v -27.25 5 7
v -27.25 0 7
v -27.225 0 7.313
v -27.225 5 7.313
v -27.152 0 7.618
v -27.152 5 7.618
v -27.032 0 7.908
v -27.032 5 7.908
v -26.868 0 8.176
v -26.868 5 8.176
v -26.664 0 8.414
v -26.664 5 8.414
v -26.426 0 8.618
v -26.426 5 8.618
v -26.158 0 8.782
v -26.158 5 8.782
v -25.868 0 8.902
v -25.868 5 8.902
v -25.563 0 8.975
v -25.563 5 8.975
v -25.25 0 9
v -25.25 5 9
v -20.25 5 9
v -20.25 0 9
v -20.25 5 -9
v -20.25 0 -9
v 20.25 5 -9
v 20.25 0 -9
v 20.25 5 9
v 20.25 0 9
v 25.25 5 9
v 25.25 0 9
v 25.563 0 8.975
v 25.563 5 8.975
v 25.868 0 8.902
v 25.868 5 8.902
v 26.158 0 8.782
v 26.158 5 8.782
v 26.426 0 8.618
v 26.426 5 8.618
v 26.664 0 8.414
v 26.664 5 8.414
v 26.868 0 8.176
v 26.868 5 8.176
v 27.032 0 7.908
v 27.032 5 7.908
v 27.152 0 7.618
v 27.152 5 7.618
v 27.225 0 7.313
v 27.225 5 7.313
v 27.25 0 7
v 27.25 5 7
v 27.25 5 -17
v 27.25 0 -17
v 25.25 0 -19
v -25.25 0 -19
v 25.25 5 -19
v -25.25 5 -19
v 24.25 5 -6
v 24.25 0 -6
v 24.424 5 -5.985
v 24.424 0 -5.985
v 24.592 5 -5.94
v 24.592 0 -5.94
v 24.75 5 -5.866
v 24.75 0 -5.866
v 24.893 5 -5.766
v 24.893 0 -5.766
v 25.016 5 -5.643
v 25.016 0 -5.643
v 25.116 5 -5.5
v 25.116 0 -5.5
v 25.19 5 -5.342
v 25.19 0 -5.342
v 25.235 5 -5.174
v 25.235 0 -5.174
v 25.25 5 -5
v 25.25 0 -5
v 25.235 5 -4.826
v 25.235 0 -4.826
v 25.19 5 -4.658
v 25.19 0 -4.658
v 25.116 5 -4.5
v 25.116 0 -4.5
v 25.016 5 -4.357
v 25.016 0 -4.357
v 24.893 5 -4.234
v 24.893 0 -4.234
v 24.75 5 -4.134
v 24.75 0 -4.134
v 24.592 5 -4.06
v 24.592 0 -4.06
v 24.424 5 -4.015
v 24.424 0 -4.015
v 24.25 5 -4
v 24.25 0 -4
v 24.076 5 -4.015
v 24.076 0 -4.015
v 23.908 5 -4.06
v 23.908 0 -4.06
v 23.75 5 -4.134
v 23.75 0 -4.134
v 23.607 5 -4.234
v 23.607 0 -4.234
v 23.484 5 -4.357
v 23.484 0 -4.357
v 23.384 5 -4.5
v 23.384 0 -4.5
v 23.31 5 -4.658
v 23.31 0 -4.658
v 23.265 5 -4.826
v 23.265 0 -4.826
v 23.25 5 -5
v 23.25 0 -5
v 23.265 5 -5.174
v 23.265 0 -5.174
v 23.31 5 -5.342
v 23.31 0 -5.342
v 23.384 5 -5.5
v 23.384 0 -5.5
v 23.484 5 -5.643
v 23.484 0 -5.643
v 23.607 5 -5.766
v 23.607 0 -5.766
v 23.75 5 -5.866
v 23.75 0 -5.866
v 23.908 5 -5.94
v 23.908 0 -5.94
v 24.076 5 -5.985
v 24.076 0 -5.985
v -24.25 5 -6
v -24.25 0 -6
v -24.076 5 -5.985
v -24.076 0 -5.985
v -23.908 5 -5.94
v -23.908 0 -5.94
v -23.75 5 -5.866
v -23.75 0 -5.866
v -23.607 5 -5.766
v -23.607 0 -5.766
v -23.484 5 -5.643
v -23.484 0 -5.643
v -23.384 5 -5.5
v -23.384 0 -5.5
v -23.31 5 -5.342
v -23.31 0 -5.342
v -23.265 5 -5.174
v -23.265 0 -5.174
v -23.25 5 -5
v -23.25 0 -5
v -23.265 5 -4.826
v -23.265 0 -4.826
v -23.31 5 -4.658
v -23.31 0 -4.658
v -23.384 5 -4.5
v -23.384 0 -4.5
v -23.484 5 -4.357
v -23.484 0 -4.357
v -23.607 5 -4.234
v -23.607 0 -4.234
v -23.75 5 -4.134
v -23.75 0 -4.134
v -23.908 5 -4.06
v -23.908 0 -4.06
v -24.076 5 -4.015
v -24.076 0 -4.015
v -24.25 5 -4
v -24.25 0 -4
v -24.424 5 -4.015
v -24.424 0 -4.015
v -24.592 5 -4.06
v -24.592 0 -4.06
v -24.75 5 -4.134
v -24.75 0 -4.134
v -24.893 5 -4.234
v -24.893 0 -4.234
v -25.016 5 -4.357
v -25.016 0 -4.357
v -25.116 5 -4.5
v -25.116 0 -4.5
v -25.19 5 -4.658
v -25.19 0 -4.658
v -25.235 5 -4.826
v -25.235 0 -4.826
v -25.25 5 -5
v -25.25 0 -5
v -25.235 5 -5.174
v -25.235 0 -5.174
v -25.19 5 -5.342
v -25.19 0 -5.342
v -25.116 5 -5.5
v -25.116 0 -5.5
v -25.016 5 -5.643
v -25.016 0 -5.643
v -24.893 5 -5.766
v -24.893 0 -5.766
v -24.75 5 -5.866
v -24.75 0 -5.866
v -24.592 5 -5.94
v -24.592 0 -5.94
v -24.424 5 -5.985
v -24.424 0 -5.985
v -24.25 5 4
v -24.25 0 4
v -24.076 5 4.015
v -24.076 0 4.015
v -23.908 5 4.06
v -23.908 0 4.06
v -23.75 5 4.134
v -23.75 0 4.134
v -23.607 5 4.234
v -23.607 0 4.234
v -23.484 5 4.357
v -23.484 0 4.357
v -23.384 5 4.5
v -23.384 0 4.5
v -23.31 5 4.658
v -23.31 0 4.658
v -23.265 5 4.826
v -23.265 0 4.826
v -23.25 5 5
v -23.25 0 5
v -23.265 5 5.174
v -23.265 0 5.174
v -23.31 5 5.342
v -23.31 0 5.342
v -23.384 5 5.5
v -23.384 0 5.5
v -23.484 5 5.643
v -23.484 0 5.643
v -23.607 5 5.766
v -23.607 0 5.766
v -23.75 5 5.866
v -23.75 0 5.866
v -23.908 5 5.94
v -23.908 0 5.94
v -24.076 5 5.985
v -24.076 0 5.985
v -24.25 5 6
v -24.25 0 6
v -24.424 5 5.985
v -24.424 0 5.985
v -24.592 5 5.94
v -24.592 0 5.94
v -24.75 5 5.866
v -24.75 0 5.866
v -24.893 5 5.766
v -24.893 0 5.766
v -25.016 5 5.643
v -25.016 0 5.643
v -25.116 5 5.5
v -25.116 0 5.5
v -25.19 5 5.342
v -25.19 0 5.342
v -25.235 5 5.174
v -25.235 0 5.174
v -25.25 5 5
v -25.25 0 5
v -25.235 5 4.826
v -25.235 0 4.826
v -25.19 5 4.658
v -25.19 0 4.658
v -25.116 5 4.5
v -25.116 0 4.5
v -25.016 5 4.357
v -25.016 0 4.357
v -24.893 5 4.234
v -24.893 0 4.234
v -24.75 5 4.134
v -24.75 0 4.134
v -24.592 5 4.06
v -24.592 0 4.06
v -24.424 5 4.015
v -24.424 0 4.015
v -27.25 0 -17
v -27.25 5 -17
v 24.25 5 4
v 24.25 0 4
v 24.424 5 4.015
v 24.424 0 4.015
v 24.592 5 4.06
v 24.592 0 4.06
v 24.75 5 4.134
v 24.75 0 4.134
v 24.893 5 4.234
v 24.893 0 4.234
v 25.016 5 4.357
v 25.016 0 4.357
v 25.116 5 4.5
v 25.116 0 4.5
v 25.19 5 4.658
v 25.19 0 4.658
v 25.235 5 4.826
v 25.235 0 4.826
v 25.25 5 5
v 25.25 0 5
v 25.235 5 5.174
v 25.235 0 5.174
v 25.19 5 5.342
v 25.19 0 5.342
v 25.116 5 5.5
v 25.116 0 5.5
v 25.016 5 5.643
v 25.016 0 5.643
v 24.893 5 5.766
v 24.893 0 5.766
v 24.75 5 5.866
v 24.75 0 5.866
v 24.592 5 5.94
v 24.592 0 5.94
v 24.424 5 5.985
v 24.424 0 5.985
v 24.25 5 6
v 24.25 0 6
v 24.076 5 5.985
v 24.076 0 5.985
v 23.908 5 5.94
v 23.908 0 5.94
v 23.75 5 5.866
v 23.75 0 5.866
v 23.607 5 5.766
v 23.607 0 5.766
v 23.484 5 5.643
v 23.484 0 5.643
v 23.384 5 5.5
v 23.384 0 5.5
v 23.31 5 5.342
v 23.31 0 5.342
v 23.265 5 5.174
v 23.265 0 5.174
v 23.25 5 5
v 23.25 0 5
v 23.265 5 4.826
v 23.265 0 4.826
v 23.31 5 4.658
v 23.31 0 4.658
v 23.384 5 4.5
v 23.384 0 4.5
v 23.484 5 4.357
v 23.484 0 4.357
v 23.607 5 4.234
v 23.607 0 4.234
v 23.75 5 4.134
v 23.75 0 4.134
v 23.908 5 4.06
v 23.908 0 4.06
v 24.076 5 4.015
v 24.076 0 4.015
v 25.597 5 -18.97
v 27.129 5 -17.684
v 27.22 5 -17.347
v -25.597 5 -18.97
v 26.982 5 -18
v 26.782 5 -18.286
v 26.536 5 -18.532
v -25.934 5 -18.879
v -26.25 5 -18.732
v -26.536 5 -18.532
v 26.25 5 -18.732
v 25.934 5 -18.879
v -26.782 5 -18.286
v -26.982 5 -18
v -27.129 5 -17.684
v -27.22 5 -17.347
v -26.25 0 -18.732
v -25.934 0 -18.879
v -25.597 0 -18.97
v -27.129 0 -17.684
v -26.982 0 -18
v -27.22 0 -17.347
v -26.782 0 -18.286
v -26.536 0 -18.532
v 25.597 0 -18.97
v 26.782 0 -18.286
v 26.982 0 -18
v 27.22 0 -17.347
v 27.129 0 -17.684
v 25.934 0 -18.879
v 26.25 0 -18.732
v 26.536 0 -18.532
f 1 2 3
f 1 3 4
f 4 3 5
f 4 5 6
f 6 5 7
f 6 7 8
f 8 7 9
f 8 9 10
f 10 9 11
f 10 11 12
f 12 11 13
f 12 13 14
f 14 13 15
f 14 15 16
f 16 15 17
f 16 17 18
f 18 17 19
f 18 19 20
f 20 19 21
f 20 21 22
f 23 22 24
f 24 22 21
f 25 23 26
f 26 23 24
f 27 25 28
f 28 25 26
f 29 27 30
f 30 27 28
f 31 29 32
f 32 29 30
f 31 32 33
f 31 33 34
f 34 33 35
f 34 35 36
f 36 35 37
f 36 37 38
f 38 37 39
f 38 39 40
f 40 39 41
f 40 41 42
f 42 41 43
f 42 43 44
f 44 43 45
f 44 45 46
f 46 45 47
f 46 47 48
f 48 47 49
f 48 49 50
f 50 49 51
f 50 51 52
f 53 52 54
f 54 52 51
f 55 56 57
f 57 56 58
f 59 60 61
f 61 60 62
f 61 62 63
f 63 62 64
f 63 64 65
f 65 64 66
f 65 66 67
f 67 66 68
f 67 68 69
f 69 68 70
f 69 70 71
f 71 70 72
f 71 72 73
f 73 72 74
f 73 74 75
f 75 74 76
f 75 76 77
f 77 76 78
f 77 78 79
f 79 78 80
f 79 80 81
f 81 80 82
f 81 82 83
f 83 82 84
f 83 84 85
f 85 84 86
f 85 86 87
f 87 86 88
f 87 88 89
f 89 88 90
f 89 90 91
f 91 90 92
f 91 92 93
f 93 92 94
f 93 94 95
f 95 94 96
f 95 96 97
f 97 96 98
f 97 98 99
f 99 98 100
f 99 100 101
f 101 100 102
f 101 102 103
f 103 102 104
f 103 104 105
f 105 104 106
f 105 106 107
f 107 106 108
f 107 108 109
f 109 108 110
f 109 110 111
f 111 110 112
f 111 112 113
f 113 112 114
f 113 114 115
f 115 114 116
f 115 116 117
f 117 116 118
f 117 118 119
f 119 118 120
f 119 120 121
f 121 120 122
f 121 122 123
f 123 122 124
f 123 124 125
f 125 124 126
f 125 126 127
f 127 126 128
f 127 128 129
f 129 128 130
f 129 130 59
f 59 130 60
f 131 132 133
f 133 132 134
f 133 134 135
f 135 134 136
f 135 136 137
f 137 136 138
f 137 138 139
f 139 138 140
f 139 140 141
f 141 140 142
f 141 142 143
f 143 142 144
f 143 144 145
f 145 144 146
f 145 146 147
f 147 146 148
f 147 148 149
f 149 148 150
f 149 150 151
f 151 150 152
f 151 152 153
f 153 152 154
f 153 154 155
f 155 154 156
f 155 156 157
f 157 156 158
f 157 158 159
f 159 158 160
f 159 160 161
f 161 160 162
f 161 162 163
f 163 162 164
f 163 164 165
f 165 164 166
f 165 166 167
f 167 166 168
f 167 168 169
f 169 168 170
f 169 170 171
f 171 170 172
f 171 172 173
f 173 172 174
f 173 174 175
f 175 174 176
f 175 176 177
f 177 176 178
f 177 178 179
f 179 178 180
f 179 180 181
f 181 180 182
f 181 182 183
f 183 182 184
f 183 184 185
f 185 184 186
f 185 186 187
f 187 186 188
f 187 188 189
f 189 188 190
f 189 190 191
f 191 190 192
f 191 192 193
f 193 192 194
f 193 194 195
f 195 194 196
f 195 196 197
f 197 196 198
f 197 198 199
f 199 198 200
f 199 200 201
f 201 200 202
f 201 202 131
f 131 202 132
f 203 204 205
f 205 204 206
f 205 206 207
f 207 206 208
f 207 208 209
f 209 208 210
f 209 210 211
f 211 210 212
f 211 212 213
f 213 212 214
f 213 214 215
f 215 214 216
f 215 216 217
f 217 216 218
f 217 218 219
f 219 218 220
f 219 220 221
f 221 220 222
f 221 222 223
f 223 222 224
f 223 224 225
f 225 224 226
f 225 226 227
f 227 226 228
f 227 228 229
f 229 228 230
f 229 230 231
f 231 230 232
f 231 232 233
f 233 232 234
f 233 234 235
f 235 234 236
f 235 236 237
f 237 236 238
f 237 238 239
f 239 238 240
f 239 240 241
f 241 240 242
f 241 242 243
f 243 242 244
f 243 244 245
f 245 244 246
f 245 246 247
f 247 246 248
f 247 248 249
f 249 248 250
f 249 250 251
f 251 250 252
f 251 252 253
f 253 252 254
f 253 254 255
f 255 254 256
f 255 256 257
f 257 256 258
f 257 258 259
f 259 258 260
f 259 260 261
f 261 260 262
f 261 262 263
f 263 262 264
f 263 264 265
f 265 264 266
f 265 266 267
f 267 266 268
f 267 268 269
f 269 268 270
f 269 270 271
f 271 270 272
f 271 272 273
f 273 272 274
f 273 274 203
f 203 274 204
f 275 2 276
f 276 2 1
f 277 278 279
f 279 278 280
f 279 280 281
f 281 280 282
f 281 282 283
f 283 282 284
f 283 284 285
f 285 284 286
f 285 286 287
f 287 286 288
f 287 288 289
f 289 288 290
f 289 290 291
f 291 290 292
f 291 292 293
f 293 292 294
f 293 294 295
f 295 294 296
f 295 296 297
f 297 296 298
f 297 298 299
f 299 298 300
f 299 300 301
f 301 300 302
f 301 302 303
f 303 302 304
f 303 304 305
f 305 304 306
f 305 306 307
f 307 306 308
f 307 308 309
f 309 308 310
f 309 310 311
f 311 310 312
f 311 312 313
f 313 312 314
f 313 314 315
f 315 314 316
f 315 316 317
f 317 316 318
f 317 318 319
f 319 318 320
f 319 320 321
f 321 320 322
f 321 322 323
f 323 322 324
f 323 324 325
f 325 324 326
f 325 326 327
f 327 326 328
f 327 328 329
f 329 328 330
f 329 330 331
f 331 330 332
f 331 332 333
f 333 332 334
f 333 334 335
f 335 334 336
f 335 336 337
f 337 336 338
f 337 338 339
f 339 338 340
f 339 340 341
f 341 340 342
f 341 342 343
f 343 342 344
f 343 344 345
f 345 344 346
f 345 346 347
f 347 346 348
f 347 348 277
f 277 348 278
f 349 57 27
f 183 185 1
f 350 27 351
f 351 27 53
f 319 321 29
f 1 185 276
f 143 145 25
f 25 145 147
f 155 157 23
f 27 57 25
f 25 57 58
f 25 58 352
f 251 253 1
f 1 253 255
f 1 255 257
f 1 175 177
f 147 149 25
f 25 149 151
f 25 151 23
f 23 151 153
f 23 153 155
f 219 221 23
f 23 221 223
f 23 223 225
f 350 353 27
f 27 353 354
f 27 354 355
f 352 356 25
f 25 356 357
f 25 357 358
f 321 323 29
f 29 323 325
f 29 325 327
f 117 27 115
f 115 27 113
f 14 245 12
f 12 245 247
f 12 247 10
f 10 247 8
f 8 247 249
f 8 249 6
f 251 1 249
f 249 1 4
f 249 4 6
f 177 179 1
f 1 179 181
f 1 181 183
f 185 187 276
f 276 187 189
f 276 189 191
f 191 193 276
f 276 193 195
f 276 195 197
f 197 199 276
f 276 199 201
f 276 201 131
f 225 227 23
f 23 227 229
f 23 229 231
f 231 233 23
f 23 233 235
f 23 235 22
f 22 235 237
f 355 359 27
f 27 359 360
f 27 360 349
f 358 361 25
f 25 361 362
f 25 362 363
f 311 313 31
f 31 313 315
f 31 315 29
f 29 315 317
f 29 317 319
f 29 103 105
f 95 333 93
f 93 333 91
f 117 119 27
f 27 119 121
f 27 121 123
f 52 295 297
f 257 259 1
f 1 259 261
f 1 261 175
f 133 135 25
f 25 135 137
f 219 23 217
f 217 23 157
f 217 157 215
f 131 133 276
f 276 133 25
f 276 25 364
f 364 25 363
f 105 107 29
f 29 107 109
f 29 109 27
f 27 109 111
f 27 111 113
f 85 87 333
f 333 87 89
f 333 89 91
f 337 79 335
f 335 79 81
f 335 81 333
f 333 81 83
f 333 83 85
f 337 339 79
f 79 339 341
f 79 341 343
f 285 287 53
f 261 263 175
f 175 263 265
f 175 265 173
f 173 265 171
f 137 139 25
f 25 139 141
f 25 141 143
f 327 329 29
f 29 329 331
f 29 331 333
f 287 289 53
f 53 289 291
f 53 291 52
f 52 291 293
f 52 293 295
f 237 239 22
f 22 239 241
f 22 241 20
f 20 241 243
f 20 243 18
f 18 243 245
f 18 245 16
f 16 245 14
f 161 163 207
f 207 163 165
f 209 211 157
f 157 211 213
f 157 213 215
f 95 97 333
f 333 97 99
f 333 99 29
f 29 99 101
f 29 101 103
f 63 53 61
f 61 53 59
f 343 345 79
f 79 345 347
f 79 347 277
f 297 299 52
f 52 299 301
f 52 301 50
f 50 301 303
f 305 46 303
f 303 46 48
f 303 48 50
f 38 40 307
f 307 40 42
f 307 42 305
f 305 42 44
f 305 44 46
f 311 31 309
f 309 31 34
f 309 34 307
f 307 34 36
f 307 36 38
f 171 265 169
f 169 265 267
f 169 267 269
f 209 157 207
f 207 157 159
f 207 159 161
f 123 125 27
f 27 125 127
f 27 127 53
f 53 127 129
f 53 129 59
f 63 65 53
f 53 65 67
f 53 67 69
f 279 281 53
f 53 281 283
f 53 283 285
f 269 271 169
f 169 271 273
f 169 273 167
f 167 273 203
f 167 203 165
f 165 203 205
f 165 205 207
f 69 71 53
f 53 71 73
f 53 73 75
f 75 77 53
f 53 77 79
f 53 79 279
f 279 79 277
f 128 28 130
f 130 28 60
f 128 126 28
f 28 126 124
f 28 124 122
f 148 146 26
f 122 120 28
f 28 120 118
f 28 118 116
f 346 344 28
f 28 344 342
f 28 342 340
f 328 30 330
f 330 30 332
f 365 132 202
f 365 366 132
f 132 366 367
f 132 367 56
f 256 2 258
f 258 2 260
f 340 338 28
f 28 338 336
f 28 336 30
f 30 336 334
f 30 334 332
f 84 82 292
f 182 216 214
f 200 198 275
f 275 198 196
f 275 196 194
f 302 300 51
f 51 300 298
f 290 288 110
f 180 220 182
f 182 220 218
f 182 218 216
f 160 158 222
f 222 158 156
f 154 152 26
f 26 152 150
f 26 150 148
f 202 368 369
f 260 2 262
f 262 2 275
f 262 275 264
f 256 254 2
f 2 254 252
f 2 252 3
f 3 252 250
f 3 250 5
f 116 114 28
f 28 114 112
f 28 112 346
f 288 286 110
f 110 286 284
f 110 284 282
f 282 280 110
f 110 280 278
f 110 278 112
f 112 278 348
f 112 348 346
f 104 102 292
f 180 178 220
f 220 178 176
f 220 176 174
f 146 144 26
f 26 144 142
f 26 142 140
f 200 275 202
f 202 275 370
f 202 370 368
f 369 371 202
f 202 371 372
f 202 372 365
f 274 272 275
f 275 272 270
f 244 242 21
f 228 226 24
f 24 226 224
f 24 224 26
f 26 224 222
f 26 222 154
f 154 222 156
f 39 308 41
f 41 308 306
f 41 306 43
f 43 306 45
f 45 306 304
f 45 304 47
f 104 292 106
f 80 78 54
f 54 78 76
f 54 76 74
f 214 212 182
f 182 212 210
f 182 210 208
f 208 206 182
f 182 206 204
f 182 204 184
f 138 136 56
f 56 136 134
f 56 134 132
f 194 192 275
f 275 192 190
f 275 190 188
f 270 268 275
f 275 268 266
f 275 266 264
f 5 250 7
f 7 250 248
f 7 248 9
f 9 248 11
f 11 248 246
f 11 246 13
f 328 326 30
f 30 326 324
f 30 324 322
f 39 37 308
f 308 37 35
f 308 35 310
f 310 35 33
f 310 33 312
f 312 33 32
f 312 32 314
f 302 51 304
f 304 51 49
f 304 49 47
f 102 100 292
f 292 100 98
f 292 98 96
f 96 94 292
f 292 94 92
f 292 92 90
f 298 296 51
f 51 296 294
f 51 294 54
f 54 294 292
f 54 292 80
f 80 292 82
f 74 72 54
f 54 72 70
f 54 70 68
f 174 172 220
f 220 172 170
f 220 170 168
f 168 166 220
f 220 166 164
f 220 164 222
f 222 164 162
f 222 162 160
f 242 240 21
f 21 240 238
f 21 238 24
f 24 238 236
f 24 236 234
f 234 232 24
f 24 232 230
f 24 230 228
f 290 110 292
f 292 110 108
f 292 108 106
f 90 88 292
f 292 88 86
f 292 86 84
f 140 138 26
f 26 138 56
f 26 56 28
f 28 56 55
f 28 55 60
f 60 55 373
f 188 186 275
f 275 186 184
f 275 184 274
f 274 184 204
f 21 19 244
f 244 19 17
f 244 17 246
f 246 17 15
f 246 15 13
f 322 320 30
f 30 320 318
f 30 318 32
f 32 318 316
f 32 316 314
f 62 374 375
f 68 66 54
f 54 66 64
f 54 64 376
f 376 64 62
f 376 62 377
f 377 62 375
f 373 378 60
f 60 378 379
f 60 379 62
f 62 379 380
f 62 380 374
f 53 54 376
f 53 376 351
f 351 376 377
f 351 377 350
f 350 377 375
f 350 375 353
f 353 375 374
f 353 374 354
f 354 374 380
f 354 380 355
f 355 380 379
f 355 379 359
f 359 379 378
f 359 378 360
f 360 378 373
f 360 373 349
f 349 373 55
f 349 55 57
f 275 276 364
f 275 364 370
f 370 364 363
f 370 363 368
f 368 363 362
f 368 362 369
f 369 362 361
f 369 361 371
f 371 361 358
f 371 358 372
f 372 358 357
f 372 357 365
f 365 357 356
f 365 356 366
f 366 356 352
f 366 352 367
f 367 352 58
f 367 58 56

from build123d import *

# Parameters (mm, degrees)
SKETCH1_R           = 1
BOSS_EXTRUDE2_DEPTH = 5
FILLET1_R           = 2


with BuildPart() as part:
    # Sketch1 → Boss-Extrude2 (new body)
    with BuildSketch(Plane(origin=(0, 0, 0), x_dir=(1, 0, 0), z_dir=(0, 1, 0))):
        with BuildLine():
            ThreePointArc((-25.25, -9), (-26.664213562, -8.414213562), (-27.25, -7))
            Line((-27.25, -7), (-27.25, 9))
            Line((-27.25, 9), (-20.25, 9))
            Line((-20.25, 9), (-20.25, -9))
            Line((-20.25, -9), (-25.25, -9))
        make_face()
        with Locations((-24.25, -5)):
            Circle(SKETCH1_R, mode=Mode.SUBTRACT)
        with Locations((-24.25, 5)):
            Circle(SKETCH1_R, mode=Mode.SUBTRACT)
        Polygon((-27.25, 9), (-20.25, 9), (20.25, 9), (27.25, 9), (27.25, 19), (-27.25, 19), align=None)
        with BuildLine():
            ThreePointArc((27.25, -7), (26.664213562, -8.414213562), (25.25, -9))
            Line((25.25, -9), (20.25, -9))
            Line((20.25, -9), (20.25, 9))
            Line((20.25, 9), (27.25, 9))
            Line((27.25, 9), (27.25, -7))
        make_face()
        with Locations((24.25, 5)):
            Circle(SKETCH1_R, mode=Mode.SUBTRACT)
        with Locations((24.25, -5)):
            Circle(SKETCH1_R, mode=Mode.SUBTRACT)
    extrude(amount=BOSS_EXTRUDE2_DEPTH)

    # Fillet1
    fillet1_edges = [part.edges().sort_by_distance(p)[0] for p in [
        (-27.25, 2.5, -19),
        (27.25, 2.5, -19),
    ]]
    fillet(fillet1_edges, radius=FILLET1_R)


solid = part.part
